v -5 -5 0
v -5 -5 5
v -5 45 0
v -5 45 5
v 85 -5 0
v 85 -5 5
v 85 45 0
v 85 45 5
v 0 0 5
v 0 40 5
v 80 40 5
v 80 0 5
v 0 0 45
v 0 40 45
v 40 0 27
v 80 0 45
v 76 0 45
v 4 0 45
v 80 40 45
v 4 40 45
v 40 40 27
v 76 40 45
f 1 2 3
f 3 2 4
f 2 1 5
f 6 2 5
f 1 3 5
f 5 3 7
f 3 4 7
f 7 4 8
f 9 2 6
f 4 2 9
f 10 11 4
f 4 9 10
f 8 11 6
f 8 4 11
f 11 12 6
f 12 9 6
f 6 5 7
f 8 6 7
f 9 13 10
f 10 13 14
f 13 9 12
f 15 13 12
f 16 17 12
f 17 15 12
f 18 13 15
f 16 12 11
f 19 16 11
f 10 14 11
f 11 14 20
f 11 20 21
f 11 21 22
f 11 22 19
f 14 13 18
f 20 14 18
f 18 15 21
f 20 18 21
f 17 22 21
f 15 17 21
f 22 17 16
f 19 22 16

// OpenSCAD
$fn=128;

base_height=5;

translate([-5, -5, 0])
cube([90, 50, base_height]);

translate([0, 0, base_height])
difference() {
  cube([80, 40, 40]);

  translate([0, 0, 22])
  rotate(a=[90,0,0])
  linear_extrude(h=40, center=true, convexity=10, twist=0)
  polygon(points=[[40,0], [80,20], [0,20]], paths=[[0,1,2]]);
}
